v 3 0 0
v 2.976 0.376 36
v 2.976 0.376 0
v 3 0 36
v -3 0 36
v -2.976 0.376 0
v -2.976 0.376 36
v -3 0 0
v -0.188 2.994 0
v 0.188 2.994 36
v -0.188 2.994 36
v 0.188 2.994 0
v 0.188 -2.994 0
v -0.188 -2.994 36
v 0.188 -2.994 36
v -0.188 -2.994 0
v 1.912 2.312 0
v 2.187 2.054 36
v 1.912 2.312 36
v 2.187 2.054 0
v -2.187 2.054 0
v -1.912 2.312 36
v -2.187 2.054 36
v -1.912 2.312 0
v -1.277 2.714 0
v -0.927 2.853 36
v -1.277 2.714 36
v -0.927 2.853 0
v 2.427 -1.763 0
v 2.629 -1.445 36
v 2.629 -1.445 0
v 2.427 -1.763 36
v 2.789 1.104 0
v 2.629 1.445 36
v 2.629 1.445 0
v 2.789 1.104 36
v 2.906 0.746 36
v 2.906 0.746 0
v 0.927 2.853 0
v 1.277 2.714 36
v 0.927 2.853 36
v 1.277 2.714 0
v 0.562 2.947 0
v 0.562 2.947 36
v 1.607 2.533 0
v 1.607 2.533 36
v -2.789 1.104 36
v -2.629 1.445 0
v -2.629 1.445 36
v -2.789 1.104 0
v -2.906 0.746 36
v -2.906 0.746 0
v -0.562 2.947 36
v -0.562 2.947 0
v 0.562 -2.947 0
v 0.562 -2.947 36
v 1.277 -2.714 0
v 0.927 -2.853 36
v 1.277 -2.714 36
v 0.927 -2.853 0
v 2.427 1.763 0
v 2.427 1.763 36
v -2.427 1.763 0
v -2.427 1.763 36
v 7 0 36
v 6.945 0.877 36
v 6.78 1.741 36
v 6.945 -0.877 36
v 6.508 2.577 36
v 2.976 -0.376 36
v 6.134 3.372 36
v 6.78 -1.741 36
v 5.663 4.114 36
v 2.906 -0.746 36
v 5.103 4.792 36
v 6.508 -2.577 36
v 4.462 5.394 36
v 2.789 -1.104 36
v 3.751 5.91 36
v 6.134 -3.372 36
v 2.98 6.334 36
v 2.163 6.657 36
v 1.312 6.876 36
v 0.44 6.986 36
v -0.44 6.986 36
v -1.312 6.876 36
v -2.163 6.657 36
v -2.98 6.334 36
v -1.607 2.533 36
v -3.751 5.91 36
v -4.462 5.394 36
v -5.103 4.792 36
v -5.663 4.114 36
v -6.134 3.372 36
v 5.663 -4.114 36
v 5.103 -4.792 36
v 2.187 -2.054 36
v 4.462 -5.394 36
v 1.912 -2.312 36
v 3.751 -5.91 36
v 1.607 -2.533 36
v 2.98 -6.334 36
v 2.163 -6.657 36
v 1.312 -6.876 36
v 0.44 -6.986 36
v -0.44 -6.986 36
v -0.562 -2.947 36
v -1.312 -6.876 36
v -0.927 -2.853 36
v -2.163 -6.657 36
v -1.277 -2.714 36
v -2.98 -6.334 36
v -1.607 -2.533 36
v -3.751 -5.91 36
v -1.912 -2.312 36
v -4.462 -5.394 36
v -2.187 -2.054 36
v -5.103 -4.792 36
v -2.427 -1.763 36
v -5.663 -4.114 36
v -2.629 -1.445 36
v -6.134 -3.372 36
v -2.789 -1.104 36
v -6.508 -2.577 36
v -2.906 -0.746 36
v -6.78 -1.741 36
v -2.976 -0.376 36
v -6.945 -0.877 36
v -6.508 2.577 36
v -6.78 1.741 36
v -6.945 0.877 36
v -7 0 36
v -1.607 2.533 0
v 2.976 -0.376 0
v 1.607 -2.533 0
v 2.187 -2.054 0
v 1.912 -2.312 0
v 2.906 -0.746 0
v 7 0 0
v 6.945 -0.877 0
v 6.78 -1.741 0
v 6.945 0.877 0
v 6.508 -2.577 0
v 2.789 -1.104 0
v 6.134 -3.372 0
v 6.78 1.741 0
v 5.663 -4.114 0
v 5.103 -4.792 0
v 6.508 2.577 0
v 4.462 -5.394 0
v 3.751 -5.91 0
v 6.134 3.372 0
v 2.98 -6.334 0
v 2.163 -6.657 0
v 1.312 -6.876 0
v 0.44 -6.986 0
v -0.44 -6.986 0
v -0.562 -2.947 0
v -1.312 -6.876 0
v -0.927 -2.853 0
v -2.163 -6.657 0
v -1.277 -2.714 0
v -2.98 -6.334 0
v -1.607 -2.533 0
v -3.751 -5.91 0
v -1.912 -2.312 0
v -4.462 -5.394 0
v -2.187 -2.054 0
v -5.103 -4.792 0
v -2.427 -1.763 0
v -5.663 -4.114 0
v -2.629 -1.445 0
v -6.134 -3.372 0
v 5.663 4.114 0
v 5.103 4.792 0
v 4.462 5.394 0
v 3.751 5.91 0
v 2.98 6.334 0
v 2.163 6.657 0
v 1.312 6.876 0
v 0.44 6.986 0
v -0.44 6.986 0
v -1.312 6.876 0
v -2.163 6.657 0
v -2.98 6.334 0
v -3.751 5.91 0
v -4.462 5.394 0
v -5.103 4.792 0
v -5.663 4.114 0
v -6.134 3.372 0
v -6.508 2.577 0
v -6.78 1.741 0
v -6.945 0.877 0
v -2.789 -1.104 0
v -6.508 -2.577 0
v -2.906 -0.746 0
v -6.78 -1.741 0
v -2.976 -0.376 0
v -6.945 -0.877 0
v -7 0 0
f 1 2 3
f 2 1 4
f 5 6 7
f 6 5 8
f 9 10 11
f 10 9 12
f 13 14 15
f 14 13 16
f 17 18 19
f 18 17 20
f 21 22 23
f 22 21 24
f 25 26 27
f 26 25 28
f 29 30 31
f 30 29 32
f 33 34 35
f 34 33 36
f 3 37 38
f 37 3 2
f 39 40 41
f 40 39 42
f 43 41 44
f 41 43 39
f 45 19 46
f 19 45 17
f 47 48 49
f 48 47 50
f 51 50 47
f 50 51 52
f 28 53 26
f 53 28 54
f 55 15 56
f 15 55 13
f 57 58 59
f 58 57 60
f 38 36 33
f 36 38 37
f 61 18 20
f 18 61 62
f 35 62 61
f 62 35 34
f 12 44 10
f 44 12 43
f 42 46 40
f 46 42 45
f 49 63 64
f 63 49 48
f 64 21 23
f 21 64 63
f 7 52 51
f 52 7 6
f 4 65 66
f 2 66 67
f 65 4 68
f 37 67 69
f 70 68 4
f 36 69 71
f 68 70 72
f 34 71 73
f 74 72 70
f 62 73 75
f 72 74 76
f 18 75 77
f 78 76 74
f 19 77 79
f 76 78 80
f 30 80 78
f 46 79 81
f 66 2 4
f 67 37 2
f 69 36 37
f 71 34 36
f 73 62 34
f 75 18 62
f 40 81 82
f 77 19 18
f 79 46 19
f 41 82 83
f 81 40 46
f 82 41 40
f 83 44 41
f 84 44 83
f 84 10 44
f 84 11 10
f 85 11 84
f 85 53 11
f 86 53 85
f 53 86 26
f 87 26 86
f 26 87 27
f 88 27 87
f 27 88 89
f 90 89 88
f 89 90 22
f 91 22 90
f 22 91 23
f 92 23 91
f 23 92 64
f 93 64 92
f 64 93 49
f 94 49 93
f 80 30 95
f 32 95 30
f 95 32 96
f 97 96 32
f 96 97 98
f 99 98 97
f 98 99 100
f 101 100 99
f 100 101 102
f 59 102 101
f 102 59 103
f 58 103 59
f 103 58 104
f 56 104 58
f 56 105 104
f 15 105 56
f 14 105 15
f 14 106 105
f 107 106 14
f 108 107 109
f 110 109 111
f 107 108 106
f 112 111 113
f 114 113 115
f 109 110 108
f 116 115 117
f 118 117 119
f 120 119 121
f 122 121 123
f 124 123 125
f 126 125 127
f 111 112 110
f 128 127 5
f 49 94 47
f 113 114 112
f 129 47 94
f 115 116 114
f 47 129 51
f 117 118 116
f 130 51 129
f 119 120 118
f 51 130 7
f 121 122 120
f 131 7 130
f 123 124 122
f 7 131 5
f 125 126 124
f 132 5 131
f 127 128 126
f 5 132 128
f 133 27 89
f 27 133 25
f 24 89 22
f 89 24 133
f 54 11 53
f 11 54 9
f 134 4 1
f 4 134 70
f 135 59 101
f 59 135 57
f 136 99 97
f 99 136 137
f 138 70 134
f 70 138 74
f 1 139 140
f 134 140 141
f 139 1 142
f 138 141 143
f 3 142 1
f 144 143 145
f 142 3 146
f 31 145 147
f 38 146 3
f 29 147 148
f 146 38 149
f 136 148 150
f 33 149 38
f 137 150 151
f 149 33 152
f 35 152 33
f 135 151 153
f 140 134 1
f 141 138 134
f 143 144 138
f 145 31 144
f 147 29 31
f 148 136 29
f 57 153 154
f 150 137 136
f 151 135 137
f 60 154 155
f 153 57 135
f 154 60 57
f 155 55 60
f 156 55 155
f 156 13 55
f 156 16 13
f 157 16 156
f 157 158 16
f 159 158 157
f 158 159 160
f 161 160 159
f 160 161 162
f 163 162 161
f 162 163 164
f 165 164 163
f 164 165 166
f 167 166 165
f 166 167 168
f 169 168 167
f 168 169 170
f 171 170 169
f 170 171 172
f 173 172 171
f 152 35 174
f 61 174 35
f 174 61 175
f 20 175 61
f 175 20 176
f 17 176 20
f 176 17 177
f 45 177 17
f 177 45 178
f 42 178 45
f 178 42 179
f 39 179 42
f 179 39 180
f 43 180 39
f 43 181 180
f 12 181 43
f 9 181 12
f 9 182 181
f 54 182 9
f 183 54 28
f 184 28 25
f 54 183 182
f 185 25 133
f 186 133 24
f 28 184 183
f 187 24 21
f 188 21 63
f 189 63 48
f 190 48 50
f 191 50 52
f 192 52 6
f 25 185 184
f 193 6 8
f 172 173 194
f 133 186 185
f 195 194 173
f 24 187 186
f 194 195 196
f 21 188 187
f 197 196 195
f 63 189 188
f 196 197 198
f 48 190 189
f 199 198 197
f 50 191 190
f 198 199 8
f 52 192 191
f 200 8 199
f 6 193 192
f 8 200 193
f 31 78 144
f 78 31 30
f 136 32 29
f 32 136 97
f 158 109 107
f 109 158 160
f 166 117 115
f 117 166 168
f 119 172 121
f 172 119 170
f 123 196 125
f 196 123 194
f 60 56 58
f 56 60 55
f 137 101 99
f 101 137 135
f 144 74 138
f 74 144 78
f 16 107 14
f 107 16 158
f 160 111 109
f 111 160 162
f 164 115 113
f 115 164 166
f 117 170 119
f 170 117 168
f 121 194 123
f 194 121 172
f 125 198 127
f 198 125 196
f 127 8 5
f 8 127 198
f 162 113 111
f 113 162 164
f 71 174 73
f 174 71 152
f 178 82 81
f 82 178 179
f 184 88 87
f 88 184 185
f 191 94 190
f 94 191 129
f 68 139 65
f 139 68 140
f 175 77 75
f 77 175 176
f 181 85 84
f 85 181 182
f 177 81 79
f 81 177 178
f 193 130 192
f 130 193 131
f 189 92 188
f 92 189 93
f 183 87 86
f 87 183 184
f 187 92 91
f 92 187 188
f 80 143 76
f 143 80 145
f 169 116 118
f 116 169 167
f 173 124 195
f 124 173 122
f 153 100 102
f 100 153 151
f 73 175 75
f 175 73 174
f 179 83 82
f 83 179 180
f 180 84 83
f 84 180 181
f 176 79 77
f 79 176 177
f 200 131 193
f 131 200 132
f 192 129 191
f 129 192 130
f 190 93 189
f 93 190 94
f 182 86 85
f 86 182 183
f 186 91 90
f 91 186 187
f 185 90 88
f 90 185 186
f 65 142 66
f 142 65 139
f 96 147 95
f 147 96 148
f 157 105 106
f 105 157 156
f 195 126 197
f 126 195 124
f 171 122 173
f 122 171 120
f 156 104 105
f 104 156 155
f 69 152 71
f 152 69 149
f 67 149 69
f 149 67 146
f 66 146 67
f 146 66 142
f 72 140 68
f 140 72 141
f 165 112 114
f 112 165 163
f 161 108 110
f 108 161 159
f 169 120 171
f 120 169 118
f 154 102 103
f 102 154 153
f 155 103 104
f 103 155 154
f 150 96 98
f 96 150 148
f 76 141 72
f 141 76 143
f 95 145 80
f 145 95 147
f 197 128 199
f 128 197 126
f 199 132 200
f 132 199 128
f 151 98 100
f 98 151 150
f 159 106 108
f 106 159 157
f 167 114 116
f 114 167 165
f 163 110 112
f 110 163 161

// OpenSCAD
$fn = 50;


difference() {
	union() {
		cylinder(h = 36, r = 7.0000000000);
	}
	union() {
		cylinder(h = 36, r = 3.0000000000);
		cylinder(h = 36, r = 3.0000000000);
		cylinder(h = 36, r = 1.5000000000);
		cylinder(h = 36, r = 1.5000000000);
		cylinder(h = 36, r = 1.5000000000);
		cylinder(h = 36, r = 1.5000000000);
		cylinder(h = 36, r = 1.5000000000);
		cylinder(h = 36, r = 1.5000000000);
	}
}
